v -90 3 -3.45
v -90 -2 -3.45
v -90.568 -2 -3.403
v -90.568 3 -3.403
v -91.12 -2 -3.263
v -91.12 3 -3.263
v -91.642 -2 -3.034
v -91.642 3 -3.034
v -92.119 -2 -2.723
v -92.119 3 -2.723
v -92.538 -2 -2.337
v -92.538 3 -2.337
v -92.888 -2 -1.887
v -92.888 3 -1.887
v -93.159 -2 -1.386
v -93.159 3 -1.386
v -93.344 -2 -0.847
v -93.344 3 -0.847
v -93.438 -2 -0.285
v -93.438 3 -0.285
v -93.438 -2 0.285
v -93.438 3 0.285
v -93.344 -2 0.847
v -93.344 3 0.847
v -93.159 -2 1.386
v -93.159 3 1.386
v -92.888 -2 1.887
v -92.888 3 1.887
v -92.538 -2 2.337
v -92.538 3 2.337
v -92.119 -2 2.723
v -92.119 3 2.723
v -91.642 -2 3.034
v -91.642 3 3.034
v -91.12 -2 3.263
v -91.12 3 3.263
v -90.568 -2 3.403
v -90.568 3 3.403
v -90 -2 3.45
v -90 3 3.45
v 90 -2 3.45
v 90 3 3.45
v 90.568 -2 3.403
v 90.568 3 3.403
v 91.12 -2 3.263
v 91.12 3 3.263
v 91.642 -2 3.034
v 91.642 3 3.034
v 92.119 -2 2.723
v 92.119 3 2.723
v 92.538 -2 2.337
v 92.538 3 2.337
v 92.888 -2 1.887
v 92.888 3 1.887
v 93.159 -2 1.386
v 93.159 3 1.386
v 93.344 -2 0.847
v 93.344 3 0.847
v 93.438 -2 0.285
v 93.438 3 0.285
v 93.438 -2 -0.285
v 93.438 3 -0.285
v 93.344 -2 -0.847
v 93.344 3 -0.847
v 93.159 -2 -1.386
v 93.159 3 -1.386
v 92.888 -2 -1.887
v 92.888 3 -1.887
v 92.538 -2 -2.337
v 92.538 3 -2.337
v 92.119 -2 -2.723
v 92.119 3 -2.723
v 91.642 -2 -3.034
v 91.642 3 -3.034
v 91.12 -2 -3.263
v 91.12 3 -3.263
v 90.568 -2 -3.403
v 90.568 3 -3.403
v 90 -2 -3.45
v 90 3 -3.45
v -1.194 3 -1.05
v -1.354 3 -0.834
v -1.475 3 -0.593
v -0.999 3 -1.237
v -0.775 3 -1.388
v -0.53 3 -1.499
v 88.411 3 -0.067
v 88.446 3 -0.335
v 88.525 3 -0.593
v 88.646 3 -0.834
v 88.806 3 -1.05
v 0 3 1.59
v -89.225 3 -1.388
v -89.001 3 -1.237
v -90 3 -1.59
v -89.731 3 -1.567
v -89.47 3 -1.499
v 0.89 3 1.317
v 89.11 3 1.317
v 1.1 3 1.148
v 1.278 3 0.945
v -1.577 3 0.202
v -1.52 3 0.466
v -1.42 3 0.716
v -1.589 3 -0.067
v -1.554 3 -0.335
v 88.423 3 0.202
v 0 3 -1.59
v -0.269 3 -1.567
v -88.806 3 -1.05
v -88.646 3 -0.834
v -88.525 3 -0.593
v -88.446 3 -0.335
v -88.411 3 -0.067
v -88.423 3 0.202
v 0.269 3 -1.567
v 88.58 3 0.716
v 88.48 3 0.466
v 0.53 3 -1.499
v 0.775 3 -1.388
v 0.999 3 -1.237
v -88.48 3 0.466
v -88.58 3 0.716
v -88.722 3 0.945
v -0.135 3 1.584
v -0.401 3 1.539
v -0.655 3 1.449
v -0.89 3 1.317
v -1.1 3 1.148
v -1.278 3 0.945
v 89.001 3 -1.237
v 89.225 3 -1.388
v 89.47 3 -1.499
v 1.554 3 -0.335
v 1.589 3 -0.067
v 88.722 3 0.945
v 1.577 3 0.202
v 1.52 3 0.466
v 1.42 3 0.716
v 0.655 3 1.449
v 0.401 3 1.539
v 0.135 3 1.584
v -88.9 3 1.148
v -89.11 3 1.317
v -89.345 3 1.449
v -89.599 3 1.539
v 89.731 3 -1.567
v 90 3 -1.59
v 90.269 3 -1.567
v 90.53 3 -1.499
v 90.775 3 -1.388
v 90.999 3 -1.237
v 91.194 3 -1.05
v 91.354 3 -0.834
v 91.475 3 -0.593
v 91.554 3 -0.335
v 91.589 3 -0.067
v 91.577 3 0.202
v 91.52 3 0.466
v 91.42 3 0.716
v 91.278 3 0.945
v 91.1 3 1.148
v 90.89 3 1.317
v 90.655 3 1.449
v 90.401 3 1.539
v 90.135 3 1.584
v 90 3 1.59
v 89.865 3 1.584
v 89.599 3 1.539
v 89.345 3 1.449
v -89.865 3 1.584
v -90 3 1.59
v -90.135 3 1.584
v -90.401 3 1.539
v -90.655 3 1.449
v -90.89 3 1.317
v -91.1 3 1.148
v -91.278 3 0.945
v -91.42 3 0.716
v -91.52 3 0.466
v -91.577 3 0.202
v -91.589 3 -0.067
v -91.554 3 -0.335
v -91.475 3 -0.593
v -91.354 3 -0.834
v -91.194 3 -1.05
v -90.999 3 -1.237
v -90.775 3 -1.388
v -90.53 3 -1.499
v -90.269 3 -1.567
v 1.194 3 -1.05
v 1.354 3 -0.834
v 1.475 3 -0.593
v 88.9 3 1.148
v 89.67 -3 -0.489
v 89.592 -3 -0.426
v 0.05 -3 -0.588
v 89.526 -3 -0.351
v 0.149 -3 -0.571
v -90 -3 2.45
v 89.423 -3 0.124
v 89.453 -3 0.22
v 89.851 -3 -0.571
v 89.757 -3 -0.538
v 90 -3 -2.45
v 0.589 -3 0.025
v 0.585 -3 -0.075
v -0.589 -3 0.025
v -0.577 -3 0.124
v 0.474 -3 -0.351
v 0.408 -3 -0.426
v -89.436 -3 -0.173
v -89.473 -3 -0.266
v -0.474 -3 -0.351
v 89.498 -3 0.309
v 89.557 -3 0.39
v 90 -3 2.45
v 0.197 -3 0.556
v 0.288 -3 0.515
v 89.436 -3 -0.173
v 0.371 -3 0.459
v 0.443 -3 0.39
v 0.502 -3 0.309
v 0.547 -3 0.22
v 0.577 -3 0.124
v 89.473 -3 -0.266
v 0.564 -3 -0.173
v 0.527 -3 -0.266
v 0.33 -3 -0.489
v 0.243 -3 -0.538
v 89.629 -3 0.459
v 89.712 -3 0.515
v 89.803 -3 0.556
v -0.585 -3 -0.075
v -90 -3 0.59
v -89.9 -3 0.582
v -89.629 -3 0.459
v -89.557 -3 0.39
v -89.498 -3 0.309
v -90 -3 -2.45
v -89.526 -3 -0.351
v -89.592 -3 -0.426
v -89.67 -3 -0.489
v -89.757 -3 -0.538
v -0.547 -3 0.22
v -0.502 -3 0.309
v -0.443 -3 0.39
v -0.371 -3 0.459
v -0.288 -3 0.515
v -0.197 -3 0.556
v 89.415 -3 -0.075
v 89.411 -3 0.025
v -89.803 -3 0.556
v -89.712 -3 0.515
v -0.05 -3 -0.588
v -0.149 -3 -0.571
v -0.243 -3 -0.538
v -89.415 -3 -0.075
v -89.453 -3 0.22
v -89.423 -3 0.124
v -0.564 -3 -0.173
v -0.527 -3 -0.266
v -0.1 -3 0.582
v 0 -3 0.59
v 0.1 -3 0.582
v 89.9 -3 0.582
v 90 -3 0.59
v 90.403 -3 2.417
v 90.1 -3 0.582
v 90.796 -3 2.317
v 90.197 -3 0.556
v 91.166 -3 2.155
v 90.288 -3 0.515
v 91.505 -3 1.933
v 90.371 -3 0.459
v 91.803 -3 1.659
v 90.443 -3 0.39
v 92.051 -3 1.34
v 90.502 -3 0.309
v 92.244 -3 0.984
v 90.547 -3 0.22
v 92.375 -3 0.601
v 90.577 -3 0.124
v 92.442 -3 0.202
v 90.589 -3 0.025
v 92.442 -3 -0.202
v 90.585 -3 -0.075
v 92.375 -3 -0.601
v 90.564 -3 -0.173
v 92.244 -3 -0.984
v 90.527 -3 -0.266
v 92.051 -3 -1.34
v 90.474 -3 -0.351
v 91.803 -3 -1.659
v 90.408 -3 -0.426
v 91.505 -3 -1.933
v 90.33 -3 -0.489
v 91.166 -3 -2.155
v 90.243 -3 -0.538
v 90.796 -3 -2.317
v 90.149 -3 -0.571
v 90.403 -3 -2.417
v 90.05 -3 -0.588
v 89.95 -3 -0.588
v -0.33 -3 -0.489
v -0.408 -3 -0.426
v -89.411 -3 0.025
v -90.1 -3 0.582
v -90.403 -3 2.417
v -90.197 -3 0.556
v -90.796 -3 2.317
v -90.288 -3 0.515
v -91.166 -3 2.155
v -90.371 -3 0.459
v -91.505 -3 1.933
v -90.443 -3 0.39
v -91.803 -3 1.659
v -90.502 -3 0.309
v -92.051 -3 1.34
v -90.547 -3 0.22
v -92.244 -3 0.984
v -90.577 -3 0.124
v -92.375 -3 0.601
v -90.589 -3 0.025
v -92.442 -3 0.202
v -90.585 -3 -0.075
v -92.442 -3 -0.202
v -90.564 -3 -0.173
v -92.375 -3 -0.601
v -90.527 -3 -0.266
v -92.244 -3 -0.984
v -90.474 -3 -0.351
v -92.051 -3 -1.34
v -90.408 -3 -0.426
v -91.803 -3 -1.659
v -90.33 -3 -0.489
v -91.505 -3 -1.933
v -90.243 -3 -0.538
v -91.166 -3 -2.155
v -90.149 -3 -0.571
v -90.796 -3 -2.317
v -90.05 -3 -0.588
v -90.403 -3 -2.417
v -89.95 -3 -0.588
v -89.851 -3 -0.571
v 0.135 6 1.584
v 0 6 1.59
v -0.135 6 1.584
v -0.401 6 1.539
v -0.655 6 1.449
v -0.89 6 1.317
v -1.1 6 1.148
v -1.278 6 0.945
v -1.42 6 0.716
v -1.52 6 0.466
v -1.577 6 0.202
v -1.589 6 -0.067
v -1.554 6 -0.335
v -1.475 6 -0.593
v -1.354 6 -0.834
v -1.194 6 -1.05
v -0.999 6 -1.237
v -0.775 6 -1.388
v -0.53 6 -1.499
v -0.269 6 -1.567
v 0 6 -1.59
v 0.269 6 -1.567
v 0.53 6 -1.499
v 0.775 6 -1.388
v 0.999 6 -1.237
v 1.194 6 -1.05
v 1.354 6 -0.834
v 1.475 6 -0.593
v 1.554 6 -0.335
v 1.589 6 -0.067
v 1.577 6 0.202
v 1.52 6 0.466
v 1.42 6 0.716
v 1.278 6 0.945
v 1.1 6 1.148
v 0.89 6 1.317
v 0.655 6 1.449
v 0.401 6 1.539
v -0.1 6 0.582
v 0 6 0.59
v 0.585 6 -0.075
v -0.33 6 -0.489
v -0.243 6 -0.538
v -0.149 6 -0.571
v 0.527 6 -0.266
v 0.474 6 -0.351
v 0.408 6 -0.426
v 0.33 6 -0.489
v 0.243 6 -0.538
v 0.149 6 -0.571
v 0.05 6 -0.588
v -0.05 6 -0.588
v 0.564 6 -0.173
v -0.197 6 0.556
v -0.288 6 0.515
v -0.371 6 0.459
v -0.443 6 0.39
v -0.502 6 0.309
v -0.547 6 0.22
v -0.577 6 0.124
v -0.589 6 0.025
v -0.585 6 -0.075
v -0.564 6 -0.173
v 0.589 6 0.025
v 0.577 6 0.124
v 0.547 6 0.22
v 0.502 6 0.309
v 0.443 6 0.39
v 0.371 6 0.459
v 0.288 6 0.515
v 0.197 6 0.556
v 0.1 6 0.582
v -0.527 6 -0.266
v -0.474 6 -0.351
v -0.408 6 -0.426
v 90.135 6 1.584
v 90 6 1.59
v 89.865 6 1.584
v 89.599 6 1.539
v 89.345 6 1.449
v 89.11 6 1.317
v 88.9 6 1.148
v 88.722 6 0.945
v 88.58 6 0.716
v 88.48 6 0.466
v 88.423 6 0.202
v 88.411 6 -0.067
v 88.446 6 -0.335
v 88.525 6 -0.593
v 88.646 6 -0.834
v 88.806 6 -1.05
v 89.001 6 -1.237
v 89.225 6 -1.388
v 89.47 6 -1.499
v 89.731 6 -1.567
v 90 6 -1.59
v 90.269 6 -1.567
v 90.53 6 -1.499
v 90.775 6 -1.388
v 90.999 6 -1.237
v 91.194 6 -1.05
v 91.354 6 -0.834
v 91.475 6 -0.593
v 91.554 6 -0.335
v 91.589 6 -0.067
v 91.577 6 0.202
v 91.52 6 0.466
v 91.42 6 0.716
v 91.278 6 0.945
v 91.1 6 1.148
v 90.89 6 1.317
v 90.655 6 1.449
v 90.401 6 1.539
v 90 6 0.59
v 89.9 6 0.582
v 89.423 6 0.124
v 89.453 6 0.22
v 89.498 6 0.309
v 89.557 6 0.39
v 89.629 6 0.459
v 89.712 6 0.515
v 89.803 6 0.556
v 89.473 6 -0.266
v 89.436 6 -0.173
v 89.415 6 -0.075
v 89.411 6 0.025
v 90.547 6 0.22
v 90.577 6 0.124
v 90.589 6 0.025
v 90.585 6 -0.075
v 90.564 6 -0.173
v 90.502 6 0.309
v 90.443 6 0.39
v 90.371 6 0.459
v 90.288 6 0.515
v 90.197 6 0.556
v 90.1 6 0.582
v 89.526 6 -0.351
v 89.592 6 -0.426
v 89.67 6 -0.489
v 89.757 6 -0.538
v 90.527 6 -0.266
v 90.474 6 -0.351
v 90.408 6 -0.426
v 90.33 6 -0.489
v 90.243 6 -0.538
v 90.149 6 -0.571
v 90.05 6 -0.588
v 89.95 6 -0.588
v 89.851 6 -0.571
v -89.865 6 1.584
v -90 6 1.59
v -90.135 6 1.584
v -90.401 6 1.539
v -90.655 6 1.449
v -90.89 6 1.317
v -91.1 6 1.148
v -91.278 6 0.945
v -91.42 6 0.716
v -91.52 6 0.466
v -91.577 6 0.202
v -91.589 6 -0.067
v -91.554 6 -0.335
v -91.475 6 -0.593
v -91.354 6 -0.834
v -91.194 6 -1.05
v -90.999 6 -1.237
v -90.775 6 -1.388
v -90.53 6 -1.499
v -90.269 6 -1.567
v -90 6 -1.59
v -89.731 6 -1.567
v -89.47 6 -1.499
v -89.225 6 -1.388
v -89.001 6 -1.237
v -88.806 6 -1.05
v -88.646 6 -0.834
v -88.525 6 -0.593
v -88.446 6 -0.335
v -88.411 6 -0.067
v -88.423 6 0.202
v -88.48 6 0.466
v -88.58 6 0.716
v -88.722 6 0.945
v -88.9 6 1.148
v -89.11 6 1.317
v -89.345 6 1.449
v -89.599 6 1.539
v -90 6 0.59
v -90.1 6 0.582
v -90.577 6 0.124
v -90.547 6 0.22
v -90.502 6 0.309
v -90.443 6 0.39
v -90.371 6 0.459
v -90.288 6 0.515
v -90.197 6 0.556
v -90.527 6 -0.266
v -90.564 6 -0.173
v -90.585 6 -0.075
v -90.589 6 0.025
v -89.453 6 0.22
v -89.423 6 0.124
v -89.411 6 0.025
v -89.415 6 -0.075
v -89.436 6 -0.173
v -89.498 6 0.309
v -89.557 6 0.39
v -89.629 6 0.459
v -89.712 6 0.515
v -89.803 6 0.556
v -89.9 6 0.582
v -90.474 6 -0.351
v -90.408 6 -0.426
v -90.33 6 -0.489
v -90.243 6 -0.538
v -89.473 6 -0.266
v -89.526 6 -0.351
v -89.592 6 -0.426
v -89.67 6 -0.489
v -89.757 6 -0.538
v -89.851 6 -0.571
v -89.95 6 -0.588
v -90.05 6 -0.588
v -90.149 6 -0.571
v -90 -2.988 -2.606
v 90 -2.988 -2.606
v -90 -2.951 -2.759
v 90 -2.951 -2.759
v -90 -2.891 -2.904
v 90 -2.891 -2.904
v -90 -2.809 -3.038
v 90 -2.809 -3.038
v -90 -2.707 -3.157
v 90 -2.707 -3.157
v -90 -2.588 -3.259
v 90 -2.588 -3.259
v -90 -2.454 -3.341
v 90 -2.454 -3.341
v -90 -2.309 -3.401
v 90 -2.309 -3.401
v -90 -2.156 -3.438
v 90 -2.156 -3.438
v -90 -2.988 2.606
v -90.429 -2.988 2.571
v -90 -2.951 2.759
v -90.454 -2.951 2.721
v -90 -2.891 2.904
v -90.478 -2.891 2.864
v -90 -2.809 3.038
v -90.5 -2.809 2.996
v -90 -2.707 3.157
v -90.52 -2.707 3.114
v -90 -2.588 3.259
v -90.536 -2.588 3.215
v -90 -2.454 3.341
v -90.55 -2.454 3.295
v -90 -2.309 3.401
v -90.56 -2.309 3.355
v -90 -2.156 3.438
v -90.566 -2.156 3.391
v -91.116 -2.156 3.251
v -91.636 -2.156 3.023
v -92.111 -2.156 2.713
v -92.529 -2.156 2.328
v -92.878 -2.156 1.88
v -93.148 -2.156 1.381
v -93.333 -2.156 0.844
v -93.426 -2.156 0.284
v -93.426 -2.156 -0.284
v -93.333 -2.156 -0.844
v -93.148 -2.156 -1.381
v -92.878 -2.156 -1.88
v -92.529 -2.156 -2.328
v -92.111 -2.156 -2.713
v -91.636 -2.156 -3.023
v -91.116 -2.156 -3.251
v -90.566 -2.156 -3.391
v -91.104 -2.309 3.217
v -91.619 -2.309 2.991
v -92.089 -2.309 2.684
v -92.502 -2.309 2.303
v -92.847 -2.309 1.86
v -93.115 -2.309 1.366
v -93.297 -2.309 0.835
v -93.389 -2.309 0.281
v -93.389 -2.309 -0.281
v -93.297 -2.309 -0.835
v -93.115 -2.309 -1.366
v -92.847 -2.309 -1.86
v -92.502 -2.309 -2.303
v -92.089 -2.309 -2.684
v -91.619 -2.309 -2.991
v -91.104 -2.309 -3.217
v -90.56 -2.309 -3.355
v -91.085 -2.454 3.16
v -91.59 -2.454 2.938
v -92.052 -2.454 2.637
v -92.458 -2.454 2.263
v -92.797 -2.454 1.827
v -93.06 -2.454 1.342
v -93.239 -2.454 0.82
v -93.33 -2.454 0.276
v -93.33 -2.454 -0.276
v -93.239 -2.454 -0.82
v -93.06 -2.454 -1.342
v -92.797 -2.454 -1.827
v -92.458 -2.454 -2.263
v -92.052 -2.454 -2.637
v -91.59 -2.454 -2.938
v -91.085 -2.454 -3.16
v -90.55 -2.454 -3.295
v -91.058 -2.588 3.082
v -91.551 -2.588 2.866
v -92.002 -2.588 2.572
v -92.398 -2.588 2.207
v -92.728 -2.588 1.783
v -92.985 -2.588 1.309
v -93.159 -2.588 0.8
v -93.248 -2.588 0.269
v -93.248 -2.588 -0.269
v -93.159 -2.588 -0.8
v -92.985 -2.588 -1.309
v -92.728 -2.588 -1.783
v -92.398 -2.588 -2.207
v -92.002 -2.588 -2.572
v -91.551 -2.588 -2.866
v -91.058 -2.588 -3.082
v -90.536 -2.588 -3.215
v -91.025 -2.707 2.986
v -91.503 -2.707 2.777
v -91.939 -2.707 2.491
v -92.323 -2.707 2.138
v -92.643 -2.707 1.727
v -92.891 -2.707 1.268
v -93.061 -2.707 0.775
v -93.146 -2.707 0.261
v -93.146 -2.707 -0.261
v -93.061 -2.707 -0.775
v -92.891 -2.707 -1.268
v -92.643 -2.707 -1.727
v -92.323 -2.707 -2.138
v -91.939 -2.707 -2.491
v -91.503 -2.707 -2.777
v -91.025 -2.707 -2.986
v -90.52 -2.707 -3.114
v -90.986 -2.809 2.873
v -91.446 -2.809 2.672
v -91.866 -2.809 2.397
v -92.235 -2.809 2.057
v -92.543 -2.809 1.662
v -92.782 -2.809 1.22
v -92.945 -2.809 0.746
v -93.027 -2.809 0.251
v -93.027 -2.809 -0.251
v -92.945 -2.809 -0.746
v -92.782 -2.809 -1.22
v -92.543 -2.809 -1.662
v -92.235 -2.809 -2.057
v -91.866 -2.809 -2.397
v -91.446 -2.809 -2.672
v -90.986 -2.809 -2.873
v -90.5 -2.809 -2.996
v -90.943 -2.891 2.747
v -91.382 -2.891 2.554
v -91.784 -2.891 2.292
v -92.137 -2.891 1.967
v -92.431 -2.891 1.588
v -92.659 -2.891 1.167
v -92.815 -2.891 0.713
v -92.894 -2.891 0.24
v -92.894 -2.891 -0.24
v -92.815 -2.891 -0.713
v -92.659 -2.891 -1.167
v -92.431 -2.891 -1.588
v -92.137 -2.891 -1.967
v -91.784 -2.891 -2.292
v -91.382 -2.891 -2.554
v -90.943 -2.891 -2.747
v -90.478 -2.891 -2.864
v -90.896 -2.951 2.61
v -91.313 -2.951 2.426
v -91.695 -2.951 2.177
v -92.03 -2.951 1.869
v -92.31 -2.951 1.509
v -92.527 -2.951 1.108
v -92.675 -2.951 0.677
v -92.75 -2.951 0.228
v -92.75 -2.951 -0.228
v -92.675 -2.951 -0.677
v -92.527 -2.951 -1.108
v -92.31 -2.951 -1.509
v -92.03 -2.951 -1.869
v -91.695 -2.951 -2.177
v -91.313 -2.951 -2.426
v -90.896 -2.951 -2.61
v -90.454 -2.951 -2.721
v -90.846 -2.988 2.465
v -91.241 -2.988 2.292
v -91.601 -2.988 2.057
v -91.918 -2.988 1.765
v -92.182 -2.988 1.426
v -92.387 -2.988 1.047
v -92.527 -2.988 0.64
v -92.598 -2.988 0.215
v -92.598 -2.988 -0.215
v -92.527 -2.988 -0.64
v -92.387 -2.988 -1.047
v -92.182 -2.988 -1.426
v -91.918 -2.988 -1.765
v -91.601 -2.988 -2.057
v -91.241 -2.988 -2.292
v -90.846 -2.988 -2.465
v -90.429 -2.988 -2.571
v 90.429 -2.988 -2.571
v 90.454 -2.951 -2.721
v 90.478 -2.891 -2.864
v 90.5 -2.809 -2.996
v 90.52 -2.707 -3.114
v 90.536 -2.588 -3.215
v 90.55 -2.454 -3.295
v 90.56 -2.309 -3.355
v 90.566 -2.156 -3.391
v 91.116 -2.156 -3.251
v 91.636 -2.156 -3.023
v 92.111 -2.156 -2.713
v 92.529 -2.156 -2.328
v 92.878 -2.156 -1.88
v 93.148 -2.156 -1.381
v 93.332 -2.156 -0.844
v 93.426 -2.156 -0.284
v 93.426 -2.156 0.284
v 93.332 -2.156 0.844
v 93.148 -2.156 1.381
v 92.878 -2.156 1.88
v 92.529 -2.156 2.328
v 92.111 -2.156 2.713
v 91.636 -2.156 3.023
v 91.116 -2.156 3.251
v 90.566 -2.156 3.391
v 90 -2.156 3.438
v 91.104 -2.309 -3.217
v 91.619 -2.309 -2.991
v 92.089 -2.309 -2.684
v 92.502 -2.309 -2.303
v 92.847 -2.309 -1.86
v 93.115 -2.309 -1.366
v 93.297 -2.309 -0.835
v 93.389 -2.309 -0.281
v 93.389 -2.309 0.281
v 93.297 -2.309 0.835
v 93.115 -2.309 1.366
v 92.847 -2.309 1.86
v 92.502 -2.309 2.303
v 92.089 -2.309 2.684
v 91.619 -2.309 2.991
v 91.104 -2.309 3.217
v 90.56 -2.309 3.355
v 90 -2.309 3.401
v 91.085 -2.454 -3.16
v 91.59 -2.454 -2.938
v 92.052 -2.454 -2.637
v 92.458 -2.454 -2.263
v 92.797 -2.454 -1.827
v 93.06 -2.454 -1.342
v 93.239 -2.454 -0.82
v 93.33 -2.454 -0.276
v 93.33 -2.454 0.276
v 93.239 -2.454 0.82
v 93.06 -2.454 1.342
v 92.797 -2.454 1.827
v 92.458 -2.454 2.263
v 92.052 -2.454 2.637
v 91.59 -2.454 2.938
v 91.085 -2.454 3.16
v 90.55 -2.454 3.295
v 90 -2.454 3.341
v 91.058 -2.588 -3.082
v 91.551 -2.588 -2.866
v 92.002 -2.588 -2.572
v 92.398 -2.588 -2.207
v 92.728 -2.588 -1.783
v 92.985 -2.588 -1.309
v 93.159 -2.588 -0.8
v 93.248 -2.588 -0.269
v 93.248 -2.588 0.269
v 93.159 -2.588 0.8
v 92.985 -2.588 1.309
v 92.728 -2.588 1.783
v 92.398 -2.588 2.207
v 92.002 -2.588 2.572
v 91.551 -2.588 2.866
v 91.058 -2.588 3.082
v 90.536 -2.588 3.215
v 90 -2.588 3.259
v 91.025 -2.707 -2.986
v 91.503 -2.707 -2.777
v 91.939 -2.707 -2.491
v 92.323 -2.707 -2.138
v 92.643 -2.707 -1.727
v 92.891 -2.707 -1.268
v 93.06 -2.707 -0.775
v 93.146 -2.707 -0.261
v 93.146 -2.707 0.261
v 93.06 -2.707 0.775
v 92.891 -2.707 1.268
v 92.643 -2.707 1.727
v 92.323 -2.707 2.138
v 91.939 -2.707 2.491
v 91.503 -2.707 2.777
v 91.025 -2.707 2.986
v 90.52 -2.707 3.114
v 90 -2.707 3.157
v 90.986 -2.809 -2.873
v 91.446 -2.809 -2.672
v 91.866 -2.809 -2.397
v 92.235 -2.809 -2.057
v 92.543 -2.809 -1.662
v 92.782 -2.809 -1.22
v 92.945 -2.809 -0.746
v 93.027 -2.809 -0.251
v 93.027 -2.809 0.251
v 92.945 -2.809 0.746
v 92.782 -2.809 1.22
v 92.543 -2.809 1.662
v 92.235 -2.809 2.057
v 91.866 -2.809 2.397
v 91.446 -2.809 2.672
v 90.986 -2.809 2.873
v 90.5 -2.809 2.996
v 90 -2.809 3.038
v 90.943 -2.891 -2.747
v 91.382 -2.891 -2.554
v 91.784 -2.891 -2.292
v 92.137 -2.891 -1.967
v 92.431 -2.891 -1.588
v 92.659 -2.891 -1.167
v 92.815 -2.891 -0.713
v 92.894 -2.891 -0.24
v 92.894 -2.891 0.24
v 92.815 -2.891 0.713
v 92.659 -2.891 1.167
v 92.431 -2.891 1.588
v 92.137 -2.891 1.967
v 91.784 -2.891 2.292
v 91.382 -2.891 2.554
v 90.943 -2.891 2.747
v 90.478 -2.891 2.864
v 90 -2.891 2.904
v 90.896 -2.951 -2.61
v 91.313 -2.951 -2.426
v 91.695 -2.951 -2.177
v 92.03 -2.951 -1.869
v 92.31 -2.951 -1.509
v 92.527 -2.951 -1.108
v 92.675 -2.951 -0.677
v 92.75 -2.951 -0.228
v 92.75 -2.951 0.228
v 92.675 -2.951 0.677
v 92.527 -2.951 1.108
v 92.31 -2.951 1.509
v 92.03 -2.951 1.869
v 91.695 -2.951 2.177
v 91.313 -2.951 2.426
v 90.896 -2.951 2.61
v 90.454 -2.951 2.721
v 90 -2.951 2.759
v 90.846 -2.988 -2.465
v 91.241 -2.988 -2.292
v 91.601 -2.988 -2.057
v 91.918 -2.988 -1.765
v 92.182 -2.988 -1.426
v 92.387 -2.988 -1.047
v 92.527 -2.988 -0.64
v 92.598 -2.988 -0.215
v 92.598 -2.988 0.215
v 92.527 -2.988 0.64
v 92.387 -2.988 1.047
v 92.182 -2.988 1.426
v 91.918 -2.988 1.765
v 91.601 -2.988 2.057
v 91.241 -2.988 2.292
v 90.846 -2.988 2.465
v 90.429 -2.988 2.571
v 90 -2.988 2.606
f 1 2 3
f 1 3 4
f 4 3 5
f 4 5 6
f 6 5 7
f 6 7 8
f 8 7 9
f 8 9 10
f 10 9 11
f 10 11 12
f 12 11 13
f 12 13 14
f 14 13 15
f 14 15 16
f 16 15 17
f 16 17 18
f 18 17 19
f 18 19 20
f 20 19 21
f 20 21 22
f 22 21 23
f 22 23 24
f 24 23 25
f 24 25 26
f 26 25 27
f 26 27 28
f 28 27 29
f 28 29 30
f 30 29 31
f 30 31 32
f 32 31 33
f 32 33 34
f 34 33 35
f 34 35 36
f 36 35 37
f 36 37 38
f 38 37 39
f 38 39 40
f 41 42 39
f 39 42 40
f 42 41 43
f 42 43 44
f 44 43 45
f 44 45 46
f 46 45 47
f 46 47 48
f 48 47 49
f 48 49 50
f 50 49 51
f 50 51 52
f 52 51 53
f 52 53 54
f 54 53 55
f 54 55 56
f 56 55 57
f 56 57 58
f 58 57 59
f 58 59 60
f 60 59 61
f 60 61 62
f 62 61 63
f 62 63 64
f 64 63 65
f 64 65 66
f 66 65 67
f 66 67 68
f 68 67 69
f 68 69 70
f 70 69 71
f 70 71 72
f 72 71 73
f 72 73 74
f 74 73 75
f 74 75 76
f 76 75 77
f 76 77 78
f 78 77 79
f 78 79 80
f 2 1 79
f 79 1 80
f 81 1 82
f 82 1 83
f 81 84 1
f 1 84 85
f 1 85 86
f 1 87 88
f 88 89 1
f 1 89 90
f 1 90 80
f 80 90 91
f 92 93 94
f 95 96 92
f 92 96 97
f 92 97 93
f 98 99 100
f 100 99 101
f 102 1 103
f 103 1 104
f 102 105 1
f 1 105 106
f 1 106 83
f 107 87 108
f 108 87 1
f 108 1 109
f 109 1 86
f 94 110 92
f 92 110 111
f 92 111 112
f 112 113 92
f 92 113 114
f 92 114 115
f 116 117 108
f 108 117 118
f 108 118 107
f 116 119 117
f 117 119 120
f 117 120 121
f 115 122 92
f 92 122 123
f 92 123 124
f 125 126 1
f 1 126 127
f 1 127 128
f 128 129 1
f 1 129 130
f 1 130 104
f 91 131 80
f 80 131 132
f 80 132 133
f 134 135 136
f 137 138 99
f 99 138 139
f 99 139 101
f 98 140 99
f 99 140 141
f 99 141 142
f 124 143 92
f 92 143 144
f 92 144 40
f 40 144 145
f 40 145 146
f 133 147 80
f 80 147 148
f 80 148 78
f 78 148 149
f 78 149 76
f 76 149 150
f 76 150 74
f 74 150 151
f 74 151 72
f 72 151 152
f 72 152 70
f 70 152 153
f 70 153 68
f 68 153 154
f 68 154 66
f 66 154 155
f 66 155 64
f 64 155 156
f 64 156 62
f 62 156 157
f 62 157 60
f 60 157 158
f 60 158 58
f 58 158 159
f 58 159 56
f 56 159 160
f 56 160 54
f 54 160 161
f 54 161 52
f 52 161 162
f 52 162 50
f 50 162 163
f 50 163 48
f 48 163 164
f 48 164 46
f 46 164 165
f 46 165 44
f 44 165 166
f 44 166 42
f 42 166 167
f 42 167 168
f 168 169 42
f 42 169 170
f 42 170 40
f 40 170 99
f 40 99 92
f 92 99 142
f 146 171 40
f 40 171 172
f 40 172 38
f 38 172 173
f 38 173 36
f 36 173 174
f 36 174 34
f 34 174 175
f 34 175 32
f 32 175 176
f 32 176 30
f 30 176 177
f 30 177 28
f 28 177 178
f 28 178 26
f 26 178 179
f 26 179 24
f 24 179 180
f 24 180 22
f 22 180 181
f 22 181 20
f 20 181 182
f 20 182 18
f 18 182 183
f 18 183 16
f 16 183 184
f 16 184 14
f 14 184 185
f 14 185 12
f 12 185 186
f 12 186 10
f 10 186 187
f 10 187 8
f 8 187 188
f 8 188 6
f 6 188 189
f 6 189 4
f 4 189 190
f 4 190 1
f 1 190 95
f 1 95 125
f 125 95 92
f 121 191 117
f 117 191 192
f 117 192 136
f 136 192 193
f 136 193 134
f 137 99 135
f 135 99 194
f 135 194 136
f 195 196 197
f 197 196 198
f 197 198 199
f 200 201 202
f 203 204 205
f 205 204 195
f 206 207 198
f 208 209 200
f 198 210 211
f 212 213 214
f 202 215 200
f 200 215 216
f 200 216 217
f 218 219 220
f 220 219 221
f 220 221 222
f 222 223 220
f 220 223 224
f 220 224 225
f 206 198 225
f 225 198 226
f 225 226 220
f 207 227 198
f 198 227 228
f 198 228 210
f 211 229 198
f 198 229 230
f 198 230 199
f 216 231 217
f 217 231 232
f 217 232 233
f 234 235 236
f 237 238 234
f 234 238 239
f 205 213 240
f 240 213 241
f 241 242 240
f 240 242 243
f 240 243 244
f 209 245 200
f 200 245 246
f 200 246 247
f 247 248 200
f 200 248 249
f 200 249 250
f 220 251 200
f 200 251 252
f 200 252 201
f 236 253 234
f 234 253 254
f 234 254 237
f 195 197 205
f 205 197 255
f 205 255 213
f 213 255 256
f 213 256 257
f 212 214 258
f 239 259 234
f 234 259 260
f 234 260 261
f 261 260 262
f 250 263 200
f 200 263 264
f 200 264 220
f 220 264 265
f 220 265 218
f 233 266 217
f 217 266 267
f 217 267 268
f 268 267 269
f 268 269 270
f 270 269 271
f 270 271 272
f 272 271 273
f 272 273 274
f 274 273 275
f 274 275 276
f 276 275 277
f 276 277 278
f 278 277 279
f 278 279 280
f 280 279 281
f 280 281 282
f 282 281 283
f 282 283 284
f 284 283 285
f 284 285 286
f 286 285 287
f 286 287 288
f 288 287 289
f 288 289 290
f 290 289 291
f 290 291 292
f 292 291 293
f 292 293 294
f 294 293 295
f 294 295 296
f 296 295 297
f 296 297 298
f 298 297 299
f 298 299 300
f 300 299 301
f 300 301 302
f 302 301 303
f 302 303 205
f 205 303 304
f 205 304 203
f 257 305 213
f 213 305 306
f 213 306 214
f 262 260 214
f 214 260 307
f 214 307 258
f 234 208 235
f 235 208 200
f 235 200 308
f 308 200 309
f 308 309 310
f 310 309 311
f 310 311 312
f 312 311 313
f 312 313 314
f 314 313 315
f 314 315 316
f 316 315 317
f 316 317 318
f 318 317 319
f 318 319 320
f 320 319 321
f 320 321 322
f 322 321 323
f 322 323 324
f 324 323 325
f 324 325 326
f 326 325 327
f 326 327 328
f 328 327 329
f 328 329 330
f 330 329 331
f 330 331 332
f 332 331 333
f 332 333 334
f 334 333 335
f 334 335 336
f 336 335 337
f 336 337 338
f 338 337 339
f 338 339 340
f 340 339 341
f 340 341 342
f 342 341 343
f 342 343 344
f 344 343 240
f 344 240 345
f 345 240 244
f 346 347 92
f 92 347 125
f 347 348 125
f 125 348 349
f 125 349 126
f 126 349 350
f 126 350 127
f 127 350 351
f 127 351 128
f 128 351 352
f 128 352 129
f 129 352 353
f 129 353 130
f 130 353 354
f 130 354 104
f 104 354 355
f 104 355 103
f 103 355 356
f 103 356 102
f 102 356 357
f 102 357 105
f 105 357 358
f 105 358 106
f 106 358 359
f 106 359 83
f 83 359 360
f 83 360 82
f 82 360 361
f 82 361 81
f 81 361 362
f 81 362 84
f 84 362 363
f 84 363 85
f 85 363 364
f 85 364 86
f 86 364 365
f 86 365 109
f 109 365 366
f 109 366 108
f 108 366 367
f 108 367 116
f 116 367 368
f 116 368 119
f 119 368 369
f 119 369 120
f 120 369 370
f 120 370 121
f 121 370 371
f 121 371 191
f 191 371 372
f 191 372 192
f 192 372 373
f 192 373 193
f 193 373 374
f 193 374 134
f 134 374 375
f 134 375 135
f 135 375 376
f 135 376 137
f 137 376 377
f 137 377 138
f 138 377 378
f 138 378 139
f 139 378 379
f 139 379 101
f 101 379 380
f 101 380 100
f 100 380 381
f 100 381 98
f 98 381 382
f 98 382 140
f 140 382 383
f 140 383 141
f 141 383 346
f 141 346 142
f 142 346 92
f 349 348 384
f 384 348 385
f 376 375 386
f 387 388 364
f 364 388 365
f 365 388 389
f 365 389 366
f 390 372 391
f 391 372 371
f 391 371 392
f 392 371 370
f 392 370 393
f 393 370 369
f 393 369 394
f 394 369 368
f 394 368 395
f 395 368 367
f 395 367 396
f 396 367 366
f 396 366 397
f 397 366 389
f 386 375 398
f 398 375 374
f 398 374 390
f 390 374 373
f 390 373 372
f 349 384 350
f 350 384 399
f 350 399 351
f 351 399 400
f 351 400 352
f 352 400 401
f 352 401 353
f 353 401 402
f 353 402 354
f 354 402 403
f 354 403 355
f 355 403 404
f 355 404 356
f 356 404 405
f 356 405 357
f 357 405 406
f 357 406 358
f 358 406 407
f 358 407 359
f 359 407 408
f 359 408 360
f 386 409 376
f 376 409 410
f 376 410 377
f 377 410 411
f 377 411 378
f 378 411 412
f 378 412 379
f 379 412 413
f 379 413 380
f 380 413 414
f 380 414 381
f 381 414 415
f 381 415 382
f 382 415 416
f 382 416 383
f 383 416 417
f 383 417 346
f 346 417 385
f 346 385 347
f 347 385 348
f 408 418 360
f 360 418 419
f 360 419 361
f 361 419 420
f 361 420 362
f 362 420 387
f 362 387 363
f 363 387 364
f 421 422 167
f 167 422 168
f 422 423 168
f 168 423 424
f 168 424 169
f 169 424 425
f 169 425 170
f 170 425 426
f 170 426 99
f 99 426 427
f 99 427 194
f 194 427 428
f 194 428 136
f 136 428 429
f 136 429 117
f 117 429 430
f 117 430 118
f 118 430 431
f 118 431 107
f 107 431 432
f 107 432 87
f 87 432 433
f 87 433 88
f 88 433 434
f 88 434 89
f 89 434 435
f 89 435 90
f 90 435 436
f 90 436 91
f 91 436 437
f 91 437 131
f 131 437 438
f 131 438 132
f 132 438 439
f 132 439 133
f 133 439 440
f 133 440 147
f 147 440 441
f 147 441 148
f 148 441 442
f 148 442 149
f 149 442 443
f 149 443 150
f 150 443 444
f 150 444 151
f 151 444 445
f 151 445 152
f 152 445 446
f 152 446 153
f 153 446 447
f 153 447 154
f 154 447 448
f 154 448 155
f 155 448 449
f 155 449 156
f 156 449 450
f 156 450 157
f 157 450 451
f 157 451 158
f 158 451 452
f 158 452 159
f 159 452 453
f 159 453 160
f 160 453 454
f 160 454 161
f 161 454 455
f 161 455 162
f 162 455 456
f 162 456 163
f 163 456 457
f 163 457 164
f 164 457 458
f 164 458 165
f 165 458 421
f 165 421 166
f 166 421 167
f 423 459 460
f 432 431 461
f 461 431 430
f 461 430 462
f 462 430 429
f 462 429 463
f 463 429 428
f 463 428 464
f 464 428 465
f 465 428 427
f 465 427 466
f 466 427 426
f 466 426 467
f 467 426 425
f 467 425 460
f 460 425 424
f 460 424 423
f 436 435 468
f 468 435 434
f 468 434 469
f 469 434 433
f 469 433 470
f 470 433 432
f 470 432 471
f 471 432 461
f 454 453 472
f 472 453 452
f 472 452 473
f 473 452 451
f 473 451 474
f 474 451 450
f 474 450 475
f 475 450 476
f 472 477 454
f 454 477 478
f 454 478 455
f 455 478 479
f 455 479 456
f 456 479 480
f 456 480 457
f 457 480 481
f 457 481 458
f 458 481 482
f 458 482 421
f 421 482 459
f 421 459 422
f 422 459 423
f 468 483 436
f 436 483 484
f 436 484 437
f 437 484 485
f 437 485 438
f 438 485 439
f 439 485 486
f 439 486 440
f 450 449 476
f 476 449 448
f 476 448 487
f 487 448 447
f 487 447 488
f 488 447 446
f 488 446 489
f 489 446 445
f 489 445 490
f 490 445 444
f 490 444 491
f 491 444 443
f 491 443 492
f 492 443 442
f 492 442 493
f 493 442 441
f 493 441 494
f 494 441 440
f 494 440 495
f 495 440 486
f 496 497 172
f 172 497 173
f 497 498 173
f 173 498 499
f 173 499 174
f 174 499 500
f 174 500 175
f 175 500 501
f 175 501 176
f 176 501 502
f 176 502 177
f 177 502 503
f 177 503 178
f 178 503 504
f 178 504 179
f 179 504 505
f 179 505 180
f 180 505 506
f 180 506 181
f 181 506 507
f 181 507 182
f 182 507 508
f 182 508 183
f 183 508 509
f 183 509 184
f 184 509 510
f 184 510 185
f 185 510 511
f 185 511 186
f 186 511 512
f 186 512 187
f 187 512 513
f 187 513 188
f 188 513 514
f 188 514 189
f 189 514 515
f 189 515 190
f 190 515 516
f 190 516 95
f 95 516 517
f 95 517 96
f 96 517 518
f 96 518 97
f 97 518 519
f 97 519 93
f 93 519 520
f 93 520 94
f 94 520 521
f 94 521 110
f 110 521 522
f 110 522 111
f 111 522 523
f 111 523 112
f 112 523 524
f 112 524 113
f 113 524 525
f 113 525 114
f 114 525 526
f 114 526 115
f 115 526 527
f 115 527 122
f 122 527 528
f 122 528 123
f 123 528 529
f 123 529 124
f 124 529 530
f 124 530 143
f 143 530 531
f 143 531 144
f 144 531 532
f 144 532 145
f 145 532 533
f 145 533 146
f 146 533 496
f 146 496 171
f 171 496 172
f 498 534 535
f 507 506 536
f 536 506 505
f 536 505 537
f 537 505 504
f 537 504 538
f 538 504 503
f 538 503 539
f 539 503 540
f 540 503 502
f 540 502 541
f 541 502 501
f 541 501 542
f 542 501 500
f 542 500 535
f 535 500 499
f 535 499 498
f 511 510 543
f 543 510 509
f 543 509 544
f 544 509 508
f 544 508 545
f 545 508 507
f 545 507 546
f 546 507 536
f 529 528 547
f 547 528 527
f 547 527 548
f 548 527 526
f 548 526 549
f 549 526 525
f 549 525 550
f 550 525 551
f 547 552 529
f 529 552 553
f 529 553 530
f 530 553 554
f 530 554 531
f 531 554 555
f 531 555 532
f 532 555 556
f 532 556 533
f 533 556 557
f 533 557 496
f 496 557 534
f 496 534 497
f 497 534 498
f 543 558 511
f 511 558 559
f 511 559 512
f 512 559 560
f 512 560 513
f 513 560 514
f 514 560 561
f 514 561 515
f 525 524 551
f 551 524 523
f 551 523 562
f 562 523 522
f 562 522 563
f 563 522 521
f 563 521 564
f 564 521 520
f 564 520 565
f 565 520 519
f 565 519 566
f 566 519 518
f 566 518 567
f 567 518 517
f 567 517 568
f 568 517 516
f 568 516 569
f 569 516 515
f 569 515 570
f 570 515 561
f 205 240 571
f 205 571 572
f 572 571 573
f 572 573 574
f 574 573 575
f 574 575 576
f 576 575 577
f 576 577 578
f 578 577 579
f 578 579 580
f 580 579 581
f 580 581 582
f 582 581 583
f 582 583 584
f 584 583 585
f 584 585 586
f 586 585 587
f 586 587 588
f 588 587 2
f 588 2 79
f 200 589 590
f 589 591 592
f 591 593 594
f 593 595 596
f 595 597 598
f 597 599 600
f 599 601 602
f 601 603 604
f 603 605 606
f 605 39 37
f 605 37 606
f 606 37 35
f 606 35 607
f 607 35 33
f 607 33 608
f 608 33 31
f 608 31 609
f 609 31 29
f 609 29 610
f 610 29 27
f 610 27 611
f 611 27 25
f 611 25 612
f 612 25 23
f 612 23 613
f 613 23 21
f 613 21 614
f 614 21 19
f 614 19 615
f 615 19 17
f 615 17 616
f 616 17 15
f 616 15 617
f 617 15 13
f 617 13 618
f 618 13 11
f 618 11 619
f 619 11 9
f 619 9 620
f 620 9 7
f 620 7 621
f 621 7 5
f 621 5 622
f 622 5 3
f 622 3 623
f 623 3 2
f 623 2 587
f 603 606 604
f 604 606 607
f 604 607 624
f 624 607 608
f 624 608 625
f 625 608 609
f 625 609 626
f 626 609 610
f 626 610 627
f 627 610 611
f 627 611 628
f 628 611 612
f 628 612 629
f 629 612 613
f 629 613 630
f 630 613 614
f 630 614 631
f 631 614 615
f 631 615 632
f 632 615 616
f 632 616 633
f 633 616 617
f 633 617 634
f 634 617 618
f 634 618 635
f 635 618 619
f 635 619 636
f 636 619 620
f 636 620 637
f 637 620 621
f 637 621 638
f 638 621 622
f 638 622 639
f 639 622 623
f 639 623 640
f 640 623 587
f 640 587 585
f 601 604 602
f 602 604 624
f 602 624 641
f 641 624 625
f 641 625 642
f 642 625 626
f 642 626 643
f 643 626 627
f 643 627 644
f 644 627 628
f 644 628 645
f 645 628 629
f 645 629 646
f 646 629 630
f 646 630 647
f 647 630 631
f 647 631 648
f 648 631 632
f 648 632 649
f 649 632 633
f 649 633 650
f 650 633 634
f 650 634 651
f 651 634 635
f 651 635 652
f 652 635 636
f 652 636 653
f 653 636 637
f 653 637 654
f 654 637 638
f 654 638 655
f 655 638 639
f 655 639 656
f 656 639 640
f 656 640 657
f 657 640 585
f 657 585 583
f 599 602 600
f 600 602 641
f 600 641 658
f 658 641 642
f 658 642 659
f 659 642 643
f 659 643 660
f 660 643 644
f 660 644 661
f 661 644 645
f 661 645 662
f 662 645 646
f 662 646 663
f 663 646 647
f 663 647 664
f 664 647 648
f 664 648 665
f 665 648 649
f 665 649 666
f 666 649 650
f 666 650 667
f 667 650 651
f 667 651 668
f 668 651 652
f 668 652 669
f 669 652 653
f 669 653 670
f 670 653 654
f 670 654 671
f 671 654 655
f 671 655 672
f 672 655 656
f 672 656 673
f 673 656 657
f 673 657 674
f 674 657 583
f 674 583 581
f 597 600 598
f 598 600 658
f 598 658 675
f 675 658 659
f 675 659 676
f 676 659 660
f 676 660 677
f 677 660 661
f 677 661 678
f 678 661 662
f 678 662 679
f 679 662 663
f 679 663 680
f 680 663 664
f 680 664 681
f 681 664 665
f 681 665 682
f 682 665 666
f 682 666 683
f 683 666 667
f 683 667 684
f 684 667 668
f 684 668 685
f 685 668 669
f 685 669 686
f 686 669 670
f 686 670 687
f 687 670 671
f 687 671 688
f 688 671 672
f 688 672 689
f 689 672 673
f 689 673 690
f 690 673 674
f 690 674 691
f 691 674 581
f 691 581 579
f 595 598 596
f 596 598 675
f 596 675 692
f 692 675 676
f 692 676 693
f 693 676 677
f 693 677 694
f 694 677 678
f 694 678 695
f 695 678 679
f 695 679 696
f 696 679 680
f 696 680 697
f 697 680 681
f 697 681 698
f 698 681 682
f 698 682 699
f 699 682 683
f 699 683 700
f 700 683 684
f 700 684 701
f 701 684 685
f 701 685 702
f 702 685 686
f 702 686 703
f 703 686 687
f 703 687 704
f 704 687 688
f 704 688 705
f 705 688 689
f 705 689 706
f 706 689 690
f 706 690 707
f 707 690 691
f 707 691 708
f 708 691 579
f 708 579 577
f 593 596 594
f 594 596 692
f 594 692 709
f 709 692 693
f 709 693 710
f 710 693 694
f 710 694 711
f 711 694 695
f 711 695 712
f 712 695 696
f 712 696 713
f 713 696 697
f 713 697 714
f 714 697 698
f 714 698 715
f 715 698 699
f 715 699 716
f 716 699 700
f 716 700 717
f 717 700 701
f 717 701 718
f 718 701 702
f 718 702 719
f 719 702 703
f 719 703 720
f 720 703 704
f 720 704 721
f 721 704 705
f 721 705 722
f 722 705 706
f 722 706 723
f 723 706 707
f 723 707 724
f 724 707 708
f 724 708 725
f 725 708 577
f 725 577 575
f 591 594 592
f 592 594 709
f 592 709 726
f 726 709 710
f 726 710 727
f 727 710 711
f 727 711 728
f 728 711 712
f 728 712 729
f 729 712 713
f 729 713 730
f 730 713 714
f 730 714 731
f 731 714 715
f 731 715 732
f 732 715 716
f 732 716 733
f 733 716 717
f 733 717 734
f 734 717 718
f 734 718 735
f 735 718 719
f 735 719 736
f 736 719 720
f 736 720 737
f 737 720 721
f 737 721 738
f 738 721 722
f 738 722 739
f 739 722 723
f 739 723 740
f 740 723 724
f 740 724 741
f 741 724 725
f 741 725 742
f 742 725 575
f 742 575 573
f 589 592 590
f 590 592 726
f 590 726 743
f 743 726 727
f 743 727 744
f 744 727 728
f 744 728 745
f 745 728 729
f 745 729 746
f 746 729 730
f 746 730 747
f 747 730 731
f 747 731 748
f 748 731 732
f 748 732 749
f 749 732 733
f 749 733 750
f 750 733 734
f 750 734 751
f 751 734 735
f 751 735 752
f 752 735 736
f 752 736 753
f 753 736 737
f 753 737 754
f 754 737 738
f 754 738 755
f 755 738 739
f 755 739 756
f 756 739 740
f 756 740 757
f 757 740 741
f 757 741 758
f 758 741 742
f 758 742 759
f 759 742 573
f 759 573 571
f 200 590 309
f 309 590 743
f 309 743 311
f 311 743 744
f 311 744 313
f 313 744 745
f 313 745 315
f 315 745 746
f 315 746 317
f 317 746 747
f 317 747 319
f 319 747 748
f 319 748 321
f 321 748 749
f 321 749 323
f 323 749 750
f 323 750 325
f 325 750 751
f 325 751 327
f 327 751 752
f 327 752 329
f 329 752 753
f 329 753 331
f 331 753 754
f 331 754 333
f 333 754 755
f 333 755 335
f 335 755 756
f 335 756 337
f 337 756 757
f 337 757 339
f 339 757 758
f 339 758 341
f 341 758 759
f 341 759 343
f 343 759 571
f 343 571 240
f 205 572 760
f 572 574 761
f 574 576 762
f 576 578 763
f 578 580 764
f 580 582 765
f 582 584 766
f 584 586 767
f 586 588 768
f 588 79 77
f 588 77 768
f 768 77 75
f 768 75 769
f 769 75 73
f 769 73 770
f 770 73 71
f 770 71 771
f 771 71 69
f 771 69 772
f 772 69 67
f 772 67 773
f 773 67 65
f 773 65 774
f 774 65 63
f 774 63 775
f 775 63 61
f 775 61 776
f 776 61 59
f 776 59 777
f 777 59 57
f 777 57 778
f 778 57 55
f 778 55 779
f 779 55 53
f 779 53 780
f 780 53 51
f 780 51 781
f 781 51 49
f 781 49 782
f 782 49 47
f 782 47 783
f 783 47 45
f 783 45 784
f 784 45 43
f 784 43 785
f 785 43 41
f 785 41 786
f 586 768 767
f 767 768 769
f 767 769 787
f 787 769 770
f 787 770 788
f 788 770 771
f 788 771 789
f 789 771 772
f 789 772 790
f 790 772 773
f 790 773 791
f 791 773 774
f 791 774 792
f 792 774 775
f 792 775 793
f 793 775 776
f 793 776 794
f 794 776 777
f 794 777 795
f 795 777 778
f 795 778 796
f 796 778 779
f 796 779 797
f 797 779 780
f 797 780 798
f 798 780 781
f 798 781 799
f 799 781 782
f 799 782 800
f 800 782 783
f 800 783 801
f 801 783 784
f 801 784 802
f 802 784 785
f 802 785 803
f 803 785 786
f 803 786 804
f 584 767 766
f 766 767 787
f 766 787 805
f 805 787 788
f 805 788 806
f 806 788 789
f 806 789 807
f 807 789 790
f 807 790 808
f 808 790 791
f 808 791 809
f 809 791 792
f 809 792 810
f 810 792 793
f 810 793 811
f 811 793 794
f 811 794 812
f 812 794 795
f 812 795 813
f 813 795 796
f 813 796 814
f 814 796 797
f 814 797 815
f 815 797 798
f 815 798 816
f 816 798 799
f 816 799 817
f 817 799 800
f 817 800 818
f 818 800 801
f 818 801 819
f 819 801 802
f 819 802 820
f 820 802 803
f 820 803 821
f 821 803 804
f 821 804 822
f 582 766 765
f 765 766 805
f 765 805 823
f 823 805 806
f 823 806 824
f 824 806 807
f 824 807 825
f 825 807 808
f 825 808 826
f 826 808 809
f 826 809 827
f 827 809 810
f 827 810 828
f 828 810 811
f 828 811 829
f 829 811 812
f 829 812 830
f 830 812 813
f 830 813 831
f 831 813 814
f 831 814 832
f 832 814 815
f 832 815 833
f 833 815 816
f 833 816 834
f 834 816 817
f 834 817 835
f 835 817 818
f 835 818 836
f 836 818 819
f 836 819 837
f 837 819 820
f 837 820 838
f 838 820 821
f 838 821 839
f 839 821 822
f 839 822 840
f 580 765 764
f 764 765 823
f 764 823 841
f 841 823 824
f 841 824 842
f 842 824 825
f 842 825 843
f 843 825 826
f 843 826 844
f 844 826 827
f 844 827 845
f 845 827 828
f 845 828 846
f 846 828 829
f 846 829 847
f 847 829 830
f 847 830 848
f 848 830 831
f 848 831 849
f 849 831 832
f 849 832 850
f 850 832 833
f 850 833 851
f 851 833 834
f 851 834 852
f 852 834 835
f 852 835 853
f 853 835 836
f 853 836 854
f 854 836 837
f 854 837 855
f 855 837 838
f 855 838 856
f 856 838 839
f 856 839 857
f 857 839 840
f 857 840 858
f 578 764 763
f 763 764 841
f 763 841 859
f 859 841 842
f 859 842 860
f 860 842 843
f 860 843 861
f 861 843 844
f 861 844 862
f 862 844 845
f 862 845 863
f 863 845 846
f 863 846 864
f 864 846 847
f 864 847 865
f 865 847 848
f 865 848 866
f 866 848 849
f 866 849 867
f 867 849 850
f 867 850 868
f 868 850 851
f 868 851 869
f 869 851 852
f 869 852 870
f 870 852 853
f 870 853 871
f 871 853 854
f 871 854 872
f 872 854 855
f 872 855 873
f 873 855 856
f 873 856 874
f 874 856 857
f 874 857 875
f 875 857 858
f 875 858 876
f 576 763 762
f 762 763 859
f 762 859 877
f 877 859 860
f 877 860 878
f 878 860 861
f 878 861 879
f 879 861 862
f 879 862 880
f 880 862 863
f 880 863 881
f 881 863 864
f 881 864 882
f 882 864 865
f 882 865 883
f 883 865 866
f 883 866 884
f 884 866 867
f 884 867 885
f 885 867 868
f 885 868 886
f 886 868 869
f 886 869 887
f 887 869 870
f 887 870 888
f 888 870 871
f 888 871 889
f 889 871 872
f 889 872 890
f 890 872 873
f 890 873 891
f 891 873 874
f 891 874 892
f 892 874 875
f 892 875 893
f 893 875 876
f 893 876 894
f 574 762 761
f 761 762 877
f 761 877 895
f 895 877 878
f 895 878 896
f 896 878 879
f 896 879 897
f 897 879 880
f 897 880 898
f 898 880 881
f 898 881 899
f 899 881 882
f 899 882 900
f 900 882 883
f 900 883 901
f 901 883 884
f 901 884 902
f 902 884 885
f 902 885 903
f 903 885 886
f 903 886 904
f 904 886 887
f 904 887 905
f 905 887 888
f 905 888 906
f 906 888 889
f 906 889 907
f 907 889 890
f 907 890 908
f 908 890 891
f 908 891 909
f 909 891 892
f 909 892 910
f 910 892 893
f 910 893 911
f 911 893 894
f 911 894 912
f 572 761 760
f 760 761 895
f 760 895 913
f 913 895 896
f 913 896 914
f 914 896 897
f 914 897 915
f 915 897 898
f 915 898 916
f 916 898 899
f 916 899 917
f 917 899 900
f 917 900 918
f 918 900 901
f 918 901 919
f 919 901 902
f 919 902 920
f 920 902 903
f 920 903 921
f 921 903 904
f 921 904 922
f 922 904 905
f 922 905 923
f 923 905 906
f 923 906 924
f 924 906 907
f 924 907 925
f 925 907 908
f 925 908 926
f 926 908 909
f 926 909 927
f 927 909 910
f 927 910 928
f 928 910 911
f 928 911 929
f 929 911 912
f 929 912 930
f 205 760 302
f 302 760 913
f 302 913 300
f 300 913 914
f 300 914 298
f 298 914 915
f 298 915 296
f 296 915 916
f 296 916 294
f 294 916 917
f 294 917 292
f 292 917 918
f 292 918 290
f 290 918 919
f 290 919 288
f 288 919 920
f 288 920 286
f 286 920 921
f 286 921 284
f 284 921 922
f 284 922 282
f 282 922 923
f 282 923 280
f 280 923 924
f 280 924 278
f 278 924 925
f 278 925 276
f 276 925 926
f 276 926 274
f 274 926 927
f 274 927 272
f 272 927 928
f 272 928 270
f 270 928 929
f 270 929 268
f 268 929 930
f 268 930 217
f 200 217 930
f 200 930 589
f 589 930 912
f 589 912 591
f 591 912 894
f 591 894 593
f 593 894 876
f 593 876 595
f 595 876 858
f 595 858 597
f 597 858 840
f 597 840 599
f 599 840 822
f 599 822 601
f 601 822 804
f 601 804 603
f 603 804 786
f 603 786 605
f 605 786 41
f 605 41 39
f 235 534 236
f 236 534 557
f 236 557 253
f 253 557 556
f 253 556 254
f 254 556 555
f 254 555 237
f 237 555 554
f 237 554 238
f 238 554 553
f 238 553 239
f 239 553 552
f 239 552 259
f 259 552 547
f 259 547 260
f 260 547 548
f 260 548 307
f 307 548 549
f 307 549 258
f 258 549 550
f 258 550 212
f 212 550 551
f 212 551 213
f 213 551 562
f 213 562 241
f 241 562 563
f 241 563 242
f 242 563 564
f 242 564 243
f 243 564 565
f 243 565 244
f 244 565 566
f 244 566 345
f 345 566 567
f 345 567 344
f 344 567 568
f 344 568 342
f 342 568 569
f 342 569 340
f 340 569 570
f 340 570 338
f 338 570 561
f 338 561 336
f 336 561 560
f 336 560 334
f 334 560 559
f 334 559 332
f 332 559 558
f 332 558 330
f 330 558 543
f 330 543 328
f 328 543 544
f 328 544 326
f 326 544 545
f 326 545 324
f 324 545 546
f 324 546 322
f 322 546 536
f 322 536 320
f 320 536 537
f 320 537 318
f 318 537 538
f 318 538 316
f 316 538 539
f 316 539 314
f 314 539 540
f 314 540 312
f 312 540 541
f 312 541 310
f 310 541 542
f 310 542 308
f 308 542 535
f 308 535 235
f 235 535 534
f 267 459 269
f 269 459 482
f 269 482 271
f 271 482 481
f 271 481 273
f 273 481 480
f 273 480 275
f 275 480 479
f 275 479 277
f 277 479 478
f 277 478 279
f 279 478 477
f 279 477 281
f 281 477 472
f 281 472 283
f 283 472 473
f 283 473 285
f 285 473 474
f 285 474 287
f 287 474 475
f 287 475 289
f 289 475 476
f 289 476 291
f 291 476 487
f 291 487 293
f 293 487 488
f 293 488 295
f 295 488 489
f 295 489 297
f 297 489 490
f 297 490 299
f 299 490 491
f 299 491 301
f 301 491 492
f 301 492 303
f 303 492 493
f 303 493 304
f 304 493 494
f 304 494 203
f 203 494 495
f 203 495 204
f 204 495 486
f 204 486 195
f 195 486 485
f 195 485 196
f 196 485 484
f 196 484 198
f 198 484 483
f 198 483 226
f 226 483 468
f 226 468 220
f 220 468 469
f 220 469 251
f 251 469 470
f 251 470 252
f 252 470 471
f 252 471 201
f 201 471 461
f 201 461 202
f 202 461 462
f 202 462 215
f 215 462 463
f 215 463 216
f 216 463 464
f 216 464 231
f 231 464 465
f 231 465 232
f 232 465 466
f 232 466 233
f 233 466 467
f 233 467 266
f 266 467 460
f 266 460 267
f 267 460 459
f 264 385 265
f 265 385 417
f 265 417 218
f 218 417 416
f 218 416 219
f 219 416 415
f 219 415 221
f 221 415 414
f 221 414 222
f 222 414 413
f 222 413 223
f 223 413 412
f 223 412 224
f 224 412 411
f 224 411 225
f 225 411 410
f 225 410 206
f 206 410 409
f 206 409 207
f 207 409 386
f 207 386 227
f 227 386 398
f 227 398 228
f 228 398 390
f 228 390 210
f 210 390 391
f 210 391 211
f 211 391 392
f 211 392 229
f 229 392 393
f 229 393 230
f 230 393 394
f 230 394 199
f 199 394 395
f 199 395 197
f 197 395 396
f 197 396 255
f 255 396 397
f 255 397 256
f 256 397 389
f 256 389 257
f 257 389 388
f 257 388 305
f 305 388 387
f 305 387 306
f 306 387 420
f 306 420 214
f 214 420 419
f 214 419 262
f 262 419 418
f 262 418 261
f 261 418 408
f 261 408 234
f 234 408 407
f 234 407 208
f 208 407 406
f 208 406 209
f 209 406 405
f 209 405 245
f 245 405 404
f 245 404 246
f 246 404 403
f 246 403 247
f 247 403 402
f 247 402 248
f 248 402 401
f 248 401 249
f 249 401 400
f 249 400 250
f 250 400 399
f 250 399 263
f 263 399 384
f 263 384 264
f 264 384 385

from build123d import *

# Parameters (mm, degrees)
SALIENTE_EXTRUIR1_DEPTH = 3
CROQUIS3_R              = 1.59
SALIENTE_EXTRUIR2_DEPTH = 3
REDONDEO1_R             = 1
CROQUIS4_R              = 0.59
CORTAR_EXTRUIR1_DEPTH   = 94.945755625


with BuildPart() as part:
    # Croquis2 → Saliente-Extruir1 (new, symmetric)
    with BuildSketch(Plane(origin=(0, 0, 0), x_dir=(1, 0, 0), z_dir=(0, 1, 0))):
        with BuildLine():
            Line((-90, -3.45), (90, -3.45))
            ThreePointArc((90, -3.45), (93.45, 0), (90, 3.45))
            Line((90, 3.45), (-90, 3.45))
            ThreePointArc((-90, 3.45), (-93.45, 0), (-90, -3.45))
        make_face()
    extrude(amount=SALIENTE_EXTRUIR1_DEPTH, both=True)

    # Croquis3 → Saliente-Extruir2 (add)
    with BuildSketch(Plane(origin=(0, 3, 0), x_dir=(1, 0, 0), z_dir=(0, 1, 0))):
        with Locations(Location((-90, 0, 0), (0, 0, 270))):
            Circle(CROQUIS3_R)
        with Locations(Location((90, 0, 0), (0, 0, 270))):
            Circle(CROQUIS3_R)
        with Locations(Location((0, 0, 0), (0, 0, 270))):
            Circle(CROQUIS3_R)
    extrude(amount=SALIENTE_EXTRUIR2_DEPTH)

    # Redondeo1
    redondeo1_edges = [part.edges().sort_by_distance(p)[0] for p in [
        (0, -3, -3.45),
        (93.45, -3, 0),
        (0, -3, 3.45),
        (-93.45, -3, 0),
    ]]
    fillet(redondeo1_edges, radius=REDONDEO1_R)

    # Croquis4 → Cortar-Extruir1 (cut, through all)
    with BuildSketch(Plane(origin=(0, 6, 0), x_dir=(1, 0, 0), z_dir=(0, 1, 0))):
        with Locations(Location((90, 0, 0), (0, 0, 270))):
            Circle(CROQUIS4_R)
        with Locations(Location((-90, 0, 0), (0, 0, 270))):
            Circle(CROQUIS4_R)
        with Locations(Location((0, 0, 0), (0, 0, 270))):
            Circle(CROQUIS4_R)
    extrude(amount=-CORTAR_EXTRUIR1_DEPTH, mode=Mode.SUBTRACT)


solid = part.part
